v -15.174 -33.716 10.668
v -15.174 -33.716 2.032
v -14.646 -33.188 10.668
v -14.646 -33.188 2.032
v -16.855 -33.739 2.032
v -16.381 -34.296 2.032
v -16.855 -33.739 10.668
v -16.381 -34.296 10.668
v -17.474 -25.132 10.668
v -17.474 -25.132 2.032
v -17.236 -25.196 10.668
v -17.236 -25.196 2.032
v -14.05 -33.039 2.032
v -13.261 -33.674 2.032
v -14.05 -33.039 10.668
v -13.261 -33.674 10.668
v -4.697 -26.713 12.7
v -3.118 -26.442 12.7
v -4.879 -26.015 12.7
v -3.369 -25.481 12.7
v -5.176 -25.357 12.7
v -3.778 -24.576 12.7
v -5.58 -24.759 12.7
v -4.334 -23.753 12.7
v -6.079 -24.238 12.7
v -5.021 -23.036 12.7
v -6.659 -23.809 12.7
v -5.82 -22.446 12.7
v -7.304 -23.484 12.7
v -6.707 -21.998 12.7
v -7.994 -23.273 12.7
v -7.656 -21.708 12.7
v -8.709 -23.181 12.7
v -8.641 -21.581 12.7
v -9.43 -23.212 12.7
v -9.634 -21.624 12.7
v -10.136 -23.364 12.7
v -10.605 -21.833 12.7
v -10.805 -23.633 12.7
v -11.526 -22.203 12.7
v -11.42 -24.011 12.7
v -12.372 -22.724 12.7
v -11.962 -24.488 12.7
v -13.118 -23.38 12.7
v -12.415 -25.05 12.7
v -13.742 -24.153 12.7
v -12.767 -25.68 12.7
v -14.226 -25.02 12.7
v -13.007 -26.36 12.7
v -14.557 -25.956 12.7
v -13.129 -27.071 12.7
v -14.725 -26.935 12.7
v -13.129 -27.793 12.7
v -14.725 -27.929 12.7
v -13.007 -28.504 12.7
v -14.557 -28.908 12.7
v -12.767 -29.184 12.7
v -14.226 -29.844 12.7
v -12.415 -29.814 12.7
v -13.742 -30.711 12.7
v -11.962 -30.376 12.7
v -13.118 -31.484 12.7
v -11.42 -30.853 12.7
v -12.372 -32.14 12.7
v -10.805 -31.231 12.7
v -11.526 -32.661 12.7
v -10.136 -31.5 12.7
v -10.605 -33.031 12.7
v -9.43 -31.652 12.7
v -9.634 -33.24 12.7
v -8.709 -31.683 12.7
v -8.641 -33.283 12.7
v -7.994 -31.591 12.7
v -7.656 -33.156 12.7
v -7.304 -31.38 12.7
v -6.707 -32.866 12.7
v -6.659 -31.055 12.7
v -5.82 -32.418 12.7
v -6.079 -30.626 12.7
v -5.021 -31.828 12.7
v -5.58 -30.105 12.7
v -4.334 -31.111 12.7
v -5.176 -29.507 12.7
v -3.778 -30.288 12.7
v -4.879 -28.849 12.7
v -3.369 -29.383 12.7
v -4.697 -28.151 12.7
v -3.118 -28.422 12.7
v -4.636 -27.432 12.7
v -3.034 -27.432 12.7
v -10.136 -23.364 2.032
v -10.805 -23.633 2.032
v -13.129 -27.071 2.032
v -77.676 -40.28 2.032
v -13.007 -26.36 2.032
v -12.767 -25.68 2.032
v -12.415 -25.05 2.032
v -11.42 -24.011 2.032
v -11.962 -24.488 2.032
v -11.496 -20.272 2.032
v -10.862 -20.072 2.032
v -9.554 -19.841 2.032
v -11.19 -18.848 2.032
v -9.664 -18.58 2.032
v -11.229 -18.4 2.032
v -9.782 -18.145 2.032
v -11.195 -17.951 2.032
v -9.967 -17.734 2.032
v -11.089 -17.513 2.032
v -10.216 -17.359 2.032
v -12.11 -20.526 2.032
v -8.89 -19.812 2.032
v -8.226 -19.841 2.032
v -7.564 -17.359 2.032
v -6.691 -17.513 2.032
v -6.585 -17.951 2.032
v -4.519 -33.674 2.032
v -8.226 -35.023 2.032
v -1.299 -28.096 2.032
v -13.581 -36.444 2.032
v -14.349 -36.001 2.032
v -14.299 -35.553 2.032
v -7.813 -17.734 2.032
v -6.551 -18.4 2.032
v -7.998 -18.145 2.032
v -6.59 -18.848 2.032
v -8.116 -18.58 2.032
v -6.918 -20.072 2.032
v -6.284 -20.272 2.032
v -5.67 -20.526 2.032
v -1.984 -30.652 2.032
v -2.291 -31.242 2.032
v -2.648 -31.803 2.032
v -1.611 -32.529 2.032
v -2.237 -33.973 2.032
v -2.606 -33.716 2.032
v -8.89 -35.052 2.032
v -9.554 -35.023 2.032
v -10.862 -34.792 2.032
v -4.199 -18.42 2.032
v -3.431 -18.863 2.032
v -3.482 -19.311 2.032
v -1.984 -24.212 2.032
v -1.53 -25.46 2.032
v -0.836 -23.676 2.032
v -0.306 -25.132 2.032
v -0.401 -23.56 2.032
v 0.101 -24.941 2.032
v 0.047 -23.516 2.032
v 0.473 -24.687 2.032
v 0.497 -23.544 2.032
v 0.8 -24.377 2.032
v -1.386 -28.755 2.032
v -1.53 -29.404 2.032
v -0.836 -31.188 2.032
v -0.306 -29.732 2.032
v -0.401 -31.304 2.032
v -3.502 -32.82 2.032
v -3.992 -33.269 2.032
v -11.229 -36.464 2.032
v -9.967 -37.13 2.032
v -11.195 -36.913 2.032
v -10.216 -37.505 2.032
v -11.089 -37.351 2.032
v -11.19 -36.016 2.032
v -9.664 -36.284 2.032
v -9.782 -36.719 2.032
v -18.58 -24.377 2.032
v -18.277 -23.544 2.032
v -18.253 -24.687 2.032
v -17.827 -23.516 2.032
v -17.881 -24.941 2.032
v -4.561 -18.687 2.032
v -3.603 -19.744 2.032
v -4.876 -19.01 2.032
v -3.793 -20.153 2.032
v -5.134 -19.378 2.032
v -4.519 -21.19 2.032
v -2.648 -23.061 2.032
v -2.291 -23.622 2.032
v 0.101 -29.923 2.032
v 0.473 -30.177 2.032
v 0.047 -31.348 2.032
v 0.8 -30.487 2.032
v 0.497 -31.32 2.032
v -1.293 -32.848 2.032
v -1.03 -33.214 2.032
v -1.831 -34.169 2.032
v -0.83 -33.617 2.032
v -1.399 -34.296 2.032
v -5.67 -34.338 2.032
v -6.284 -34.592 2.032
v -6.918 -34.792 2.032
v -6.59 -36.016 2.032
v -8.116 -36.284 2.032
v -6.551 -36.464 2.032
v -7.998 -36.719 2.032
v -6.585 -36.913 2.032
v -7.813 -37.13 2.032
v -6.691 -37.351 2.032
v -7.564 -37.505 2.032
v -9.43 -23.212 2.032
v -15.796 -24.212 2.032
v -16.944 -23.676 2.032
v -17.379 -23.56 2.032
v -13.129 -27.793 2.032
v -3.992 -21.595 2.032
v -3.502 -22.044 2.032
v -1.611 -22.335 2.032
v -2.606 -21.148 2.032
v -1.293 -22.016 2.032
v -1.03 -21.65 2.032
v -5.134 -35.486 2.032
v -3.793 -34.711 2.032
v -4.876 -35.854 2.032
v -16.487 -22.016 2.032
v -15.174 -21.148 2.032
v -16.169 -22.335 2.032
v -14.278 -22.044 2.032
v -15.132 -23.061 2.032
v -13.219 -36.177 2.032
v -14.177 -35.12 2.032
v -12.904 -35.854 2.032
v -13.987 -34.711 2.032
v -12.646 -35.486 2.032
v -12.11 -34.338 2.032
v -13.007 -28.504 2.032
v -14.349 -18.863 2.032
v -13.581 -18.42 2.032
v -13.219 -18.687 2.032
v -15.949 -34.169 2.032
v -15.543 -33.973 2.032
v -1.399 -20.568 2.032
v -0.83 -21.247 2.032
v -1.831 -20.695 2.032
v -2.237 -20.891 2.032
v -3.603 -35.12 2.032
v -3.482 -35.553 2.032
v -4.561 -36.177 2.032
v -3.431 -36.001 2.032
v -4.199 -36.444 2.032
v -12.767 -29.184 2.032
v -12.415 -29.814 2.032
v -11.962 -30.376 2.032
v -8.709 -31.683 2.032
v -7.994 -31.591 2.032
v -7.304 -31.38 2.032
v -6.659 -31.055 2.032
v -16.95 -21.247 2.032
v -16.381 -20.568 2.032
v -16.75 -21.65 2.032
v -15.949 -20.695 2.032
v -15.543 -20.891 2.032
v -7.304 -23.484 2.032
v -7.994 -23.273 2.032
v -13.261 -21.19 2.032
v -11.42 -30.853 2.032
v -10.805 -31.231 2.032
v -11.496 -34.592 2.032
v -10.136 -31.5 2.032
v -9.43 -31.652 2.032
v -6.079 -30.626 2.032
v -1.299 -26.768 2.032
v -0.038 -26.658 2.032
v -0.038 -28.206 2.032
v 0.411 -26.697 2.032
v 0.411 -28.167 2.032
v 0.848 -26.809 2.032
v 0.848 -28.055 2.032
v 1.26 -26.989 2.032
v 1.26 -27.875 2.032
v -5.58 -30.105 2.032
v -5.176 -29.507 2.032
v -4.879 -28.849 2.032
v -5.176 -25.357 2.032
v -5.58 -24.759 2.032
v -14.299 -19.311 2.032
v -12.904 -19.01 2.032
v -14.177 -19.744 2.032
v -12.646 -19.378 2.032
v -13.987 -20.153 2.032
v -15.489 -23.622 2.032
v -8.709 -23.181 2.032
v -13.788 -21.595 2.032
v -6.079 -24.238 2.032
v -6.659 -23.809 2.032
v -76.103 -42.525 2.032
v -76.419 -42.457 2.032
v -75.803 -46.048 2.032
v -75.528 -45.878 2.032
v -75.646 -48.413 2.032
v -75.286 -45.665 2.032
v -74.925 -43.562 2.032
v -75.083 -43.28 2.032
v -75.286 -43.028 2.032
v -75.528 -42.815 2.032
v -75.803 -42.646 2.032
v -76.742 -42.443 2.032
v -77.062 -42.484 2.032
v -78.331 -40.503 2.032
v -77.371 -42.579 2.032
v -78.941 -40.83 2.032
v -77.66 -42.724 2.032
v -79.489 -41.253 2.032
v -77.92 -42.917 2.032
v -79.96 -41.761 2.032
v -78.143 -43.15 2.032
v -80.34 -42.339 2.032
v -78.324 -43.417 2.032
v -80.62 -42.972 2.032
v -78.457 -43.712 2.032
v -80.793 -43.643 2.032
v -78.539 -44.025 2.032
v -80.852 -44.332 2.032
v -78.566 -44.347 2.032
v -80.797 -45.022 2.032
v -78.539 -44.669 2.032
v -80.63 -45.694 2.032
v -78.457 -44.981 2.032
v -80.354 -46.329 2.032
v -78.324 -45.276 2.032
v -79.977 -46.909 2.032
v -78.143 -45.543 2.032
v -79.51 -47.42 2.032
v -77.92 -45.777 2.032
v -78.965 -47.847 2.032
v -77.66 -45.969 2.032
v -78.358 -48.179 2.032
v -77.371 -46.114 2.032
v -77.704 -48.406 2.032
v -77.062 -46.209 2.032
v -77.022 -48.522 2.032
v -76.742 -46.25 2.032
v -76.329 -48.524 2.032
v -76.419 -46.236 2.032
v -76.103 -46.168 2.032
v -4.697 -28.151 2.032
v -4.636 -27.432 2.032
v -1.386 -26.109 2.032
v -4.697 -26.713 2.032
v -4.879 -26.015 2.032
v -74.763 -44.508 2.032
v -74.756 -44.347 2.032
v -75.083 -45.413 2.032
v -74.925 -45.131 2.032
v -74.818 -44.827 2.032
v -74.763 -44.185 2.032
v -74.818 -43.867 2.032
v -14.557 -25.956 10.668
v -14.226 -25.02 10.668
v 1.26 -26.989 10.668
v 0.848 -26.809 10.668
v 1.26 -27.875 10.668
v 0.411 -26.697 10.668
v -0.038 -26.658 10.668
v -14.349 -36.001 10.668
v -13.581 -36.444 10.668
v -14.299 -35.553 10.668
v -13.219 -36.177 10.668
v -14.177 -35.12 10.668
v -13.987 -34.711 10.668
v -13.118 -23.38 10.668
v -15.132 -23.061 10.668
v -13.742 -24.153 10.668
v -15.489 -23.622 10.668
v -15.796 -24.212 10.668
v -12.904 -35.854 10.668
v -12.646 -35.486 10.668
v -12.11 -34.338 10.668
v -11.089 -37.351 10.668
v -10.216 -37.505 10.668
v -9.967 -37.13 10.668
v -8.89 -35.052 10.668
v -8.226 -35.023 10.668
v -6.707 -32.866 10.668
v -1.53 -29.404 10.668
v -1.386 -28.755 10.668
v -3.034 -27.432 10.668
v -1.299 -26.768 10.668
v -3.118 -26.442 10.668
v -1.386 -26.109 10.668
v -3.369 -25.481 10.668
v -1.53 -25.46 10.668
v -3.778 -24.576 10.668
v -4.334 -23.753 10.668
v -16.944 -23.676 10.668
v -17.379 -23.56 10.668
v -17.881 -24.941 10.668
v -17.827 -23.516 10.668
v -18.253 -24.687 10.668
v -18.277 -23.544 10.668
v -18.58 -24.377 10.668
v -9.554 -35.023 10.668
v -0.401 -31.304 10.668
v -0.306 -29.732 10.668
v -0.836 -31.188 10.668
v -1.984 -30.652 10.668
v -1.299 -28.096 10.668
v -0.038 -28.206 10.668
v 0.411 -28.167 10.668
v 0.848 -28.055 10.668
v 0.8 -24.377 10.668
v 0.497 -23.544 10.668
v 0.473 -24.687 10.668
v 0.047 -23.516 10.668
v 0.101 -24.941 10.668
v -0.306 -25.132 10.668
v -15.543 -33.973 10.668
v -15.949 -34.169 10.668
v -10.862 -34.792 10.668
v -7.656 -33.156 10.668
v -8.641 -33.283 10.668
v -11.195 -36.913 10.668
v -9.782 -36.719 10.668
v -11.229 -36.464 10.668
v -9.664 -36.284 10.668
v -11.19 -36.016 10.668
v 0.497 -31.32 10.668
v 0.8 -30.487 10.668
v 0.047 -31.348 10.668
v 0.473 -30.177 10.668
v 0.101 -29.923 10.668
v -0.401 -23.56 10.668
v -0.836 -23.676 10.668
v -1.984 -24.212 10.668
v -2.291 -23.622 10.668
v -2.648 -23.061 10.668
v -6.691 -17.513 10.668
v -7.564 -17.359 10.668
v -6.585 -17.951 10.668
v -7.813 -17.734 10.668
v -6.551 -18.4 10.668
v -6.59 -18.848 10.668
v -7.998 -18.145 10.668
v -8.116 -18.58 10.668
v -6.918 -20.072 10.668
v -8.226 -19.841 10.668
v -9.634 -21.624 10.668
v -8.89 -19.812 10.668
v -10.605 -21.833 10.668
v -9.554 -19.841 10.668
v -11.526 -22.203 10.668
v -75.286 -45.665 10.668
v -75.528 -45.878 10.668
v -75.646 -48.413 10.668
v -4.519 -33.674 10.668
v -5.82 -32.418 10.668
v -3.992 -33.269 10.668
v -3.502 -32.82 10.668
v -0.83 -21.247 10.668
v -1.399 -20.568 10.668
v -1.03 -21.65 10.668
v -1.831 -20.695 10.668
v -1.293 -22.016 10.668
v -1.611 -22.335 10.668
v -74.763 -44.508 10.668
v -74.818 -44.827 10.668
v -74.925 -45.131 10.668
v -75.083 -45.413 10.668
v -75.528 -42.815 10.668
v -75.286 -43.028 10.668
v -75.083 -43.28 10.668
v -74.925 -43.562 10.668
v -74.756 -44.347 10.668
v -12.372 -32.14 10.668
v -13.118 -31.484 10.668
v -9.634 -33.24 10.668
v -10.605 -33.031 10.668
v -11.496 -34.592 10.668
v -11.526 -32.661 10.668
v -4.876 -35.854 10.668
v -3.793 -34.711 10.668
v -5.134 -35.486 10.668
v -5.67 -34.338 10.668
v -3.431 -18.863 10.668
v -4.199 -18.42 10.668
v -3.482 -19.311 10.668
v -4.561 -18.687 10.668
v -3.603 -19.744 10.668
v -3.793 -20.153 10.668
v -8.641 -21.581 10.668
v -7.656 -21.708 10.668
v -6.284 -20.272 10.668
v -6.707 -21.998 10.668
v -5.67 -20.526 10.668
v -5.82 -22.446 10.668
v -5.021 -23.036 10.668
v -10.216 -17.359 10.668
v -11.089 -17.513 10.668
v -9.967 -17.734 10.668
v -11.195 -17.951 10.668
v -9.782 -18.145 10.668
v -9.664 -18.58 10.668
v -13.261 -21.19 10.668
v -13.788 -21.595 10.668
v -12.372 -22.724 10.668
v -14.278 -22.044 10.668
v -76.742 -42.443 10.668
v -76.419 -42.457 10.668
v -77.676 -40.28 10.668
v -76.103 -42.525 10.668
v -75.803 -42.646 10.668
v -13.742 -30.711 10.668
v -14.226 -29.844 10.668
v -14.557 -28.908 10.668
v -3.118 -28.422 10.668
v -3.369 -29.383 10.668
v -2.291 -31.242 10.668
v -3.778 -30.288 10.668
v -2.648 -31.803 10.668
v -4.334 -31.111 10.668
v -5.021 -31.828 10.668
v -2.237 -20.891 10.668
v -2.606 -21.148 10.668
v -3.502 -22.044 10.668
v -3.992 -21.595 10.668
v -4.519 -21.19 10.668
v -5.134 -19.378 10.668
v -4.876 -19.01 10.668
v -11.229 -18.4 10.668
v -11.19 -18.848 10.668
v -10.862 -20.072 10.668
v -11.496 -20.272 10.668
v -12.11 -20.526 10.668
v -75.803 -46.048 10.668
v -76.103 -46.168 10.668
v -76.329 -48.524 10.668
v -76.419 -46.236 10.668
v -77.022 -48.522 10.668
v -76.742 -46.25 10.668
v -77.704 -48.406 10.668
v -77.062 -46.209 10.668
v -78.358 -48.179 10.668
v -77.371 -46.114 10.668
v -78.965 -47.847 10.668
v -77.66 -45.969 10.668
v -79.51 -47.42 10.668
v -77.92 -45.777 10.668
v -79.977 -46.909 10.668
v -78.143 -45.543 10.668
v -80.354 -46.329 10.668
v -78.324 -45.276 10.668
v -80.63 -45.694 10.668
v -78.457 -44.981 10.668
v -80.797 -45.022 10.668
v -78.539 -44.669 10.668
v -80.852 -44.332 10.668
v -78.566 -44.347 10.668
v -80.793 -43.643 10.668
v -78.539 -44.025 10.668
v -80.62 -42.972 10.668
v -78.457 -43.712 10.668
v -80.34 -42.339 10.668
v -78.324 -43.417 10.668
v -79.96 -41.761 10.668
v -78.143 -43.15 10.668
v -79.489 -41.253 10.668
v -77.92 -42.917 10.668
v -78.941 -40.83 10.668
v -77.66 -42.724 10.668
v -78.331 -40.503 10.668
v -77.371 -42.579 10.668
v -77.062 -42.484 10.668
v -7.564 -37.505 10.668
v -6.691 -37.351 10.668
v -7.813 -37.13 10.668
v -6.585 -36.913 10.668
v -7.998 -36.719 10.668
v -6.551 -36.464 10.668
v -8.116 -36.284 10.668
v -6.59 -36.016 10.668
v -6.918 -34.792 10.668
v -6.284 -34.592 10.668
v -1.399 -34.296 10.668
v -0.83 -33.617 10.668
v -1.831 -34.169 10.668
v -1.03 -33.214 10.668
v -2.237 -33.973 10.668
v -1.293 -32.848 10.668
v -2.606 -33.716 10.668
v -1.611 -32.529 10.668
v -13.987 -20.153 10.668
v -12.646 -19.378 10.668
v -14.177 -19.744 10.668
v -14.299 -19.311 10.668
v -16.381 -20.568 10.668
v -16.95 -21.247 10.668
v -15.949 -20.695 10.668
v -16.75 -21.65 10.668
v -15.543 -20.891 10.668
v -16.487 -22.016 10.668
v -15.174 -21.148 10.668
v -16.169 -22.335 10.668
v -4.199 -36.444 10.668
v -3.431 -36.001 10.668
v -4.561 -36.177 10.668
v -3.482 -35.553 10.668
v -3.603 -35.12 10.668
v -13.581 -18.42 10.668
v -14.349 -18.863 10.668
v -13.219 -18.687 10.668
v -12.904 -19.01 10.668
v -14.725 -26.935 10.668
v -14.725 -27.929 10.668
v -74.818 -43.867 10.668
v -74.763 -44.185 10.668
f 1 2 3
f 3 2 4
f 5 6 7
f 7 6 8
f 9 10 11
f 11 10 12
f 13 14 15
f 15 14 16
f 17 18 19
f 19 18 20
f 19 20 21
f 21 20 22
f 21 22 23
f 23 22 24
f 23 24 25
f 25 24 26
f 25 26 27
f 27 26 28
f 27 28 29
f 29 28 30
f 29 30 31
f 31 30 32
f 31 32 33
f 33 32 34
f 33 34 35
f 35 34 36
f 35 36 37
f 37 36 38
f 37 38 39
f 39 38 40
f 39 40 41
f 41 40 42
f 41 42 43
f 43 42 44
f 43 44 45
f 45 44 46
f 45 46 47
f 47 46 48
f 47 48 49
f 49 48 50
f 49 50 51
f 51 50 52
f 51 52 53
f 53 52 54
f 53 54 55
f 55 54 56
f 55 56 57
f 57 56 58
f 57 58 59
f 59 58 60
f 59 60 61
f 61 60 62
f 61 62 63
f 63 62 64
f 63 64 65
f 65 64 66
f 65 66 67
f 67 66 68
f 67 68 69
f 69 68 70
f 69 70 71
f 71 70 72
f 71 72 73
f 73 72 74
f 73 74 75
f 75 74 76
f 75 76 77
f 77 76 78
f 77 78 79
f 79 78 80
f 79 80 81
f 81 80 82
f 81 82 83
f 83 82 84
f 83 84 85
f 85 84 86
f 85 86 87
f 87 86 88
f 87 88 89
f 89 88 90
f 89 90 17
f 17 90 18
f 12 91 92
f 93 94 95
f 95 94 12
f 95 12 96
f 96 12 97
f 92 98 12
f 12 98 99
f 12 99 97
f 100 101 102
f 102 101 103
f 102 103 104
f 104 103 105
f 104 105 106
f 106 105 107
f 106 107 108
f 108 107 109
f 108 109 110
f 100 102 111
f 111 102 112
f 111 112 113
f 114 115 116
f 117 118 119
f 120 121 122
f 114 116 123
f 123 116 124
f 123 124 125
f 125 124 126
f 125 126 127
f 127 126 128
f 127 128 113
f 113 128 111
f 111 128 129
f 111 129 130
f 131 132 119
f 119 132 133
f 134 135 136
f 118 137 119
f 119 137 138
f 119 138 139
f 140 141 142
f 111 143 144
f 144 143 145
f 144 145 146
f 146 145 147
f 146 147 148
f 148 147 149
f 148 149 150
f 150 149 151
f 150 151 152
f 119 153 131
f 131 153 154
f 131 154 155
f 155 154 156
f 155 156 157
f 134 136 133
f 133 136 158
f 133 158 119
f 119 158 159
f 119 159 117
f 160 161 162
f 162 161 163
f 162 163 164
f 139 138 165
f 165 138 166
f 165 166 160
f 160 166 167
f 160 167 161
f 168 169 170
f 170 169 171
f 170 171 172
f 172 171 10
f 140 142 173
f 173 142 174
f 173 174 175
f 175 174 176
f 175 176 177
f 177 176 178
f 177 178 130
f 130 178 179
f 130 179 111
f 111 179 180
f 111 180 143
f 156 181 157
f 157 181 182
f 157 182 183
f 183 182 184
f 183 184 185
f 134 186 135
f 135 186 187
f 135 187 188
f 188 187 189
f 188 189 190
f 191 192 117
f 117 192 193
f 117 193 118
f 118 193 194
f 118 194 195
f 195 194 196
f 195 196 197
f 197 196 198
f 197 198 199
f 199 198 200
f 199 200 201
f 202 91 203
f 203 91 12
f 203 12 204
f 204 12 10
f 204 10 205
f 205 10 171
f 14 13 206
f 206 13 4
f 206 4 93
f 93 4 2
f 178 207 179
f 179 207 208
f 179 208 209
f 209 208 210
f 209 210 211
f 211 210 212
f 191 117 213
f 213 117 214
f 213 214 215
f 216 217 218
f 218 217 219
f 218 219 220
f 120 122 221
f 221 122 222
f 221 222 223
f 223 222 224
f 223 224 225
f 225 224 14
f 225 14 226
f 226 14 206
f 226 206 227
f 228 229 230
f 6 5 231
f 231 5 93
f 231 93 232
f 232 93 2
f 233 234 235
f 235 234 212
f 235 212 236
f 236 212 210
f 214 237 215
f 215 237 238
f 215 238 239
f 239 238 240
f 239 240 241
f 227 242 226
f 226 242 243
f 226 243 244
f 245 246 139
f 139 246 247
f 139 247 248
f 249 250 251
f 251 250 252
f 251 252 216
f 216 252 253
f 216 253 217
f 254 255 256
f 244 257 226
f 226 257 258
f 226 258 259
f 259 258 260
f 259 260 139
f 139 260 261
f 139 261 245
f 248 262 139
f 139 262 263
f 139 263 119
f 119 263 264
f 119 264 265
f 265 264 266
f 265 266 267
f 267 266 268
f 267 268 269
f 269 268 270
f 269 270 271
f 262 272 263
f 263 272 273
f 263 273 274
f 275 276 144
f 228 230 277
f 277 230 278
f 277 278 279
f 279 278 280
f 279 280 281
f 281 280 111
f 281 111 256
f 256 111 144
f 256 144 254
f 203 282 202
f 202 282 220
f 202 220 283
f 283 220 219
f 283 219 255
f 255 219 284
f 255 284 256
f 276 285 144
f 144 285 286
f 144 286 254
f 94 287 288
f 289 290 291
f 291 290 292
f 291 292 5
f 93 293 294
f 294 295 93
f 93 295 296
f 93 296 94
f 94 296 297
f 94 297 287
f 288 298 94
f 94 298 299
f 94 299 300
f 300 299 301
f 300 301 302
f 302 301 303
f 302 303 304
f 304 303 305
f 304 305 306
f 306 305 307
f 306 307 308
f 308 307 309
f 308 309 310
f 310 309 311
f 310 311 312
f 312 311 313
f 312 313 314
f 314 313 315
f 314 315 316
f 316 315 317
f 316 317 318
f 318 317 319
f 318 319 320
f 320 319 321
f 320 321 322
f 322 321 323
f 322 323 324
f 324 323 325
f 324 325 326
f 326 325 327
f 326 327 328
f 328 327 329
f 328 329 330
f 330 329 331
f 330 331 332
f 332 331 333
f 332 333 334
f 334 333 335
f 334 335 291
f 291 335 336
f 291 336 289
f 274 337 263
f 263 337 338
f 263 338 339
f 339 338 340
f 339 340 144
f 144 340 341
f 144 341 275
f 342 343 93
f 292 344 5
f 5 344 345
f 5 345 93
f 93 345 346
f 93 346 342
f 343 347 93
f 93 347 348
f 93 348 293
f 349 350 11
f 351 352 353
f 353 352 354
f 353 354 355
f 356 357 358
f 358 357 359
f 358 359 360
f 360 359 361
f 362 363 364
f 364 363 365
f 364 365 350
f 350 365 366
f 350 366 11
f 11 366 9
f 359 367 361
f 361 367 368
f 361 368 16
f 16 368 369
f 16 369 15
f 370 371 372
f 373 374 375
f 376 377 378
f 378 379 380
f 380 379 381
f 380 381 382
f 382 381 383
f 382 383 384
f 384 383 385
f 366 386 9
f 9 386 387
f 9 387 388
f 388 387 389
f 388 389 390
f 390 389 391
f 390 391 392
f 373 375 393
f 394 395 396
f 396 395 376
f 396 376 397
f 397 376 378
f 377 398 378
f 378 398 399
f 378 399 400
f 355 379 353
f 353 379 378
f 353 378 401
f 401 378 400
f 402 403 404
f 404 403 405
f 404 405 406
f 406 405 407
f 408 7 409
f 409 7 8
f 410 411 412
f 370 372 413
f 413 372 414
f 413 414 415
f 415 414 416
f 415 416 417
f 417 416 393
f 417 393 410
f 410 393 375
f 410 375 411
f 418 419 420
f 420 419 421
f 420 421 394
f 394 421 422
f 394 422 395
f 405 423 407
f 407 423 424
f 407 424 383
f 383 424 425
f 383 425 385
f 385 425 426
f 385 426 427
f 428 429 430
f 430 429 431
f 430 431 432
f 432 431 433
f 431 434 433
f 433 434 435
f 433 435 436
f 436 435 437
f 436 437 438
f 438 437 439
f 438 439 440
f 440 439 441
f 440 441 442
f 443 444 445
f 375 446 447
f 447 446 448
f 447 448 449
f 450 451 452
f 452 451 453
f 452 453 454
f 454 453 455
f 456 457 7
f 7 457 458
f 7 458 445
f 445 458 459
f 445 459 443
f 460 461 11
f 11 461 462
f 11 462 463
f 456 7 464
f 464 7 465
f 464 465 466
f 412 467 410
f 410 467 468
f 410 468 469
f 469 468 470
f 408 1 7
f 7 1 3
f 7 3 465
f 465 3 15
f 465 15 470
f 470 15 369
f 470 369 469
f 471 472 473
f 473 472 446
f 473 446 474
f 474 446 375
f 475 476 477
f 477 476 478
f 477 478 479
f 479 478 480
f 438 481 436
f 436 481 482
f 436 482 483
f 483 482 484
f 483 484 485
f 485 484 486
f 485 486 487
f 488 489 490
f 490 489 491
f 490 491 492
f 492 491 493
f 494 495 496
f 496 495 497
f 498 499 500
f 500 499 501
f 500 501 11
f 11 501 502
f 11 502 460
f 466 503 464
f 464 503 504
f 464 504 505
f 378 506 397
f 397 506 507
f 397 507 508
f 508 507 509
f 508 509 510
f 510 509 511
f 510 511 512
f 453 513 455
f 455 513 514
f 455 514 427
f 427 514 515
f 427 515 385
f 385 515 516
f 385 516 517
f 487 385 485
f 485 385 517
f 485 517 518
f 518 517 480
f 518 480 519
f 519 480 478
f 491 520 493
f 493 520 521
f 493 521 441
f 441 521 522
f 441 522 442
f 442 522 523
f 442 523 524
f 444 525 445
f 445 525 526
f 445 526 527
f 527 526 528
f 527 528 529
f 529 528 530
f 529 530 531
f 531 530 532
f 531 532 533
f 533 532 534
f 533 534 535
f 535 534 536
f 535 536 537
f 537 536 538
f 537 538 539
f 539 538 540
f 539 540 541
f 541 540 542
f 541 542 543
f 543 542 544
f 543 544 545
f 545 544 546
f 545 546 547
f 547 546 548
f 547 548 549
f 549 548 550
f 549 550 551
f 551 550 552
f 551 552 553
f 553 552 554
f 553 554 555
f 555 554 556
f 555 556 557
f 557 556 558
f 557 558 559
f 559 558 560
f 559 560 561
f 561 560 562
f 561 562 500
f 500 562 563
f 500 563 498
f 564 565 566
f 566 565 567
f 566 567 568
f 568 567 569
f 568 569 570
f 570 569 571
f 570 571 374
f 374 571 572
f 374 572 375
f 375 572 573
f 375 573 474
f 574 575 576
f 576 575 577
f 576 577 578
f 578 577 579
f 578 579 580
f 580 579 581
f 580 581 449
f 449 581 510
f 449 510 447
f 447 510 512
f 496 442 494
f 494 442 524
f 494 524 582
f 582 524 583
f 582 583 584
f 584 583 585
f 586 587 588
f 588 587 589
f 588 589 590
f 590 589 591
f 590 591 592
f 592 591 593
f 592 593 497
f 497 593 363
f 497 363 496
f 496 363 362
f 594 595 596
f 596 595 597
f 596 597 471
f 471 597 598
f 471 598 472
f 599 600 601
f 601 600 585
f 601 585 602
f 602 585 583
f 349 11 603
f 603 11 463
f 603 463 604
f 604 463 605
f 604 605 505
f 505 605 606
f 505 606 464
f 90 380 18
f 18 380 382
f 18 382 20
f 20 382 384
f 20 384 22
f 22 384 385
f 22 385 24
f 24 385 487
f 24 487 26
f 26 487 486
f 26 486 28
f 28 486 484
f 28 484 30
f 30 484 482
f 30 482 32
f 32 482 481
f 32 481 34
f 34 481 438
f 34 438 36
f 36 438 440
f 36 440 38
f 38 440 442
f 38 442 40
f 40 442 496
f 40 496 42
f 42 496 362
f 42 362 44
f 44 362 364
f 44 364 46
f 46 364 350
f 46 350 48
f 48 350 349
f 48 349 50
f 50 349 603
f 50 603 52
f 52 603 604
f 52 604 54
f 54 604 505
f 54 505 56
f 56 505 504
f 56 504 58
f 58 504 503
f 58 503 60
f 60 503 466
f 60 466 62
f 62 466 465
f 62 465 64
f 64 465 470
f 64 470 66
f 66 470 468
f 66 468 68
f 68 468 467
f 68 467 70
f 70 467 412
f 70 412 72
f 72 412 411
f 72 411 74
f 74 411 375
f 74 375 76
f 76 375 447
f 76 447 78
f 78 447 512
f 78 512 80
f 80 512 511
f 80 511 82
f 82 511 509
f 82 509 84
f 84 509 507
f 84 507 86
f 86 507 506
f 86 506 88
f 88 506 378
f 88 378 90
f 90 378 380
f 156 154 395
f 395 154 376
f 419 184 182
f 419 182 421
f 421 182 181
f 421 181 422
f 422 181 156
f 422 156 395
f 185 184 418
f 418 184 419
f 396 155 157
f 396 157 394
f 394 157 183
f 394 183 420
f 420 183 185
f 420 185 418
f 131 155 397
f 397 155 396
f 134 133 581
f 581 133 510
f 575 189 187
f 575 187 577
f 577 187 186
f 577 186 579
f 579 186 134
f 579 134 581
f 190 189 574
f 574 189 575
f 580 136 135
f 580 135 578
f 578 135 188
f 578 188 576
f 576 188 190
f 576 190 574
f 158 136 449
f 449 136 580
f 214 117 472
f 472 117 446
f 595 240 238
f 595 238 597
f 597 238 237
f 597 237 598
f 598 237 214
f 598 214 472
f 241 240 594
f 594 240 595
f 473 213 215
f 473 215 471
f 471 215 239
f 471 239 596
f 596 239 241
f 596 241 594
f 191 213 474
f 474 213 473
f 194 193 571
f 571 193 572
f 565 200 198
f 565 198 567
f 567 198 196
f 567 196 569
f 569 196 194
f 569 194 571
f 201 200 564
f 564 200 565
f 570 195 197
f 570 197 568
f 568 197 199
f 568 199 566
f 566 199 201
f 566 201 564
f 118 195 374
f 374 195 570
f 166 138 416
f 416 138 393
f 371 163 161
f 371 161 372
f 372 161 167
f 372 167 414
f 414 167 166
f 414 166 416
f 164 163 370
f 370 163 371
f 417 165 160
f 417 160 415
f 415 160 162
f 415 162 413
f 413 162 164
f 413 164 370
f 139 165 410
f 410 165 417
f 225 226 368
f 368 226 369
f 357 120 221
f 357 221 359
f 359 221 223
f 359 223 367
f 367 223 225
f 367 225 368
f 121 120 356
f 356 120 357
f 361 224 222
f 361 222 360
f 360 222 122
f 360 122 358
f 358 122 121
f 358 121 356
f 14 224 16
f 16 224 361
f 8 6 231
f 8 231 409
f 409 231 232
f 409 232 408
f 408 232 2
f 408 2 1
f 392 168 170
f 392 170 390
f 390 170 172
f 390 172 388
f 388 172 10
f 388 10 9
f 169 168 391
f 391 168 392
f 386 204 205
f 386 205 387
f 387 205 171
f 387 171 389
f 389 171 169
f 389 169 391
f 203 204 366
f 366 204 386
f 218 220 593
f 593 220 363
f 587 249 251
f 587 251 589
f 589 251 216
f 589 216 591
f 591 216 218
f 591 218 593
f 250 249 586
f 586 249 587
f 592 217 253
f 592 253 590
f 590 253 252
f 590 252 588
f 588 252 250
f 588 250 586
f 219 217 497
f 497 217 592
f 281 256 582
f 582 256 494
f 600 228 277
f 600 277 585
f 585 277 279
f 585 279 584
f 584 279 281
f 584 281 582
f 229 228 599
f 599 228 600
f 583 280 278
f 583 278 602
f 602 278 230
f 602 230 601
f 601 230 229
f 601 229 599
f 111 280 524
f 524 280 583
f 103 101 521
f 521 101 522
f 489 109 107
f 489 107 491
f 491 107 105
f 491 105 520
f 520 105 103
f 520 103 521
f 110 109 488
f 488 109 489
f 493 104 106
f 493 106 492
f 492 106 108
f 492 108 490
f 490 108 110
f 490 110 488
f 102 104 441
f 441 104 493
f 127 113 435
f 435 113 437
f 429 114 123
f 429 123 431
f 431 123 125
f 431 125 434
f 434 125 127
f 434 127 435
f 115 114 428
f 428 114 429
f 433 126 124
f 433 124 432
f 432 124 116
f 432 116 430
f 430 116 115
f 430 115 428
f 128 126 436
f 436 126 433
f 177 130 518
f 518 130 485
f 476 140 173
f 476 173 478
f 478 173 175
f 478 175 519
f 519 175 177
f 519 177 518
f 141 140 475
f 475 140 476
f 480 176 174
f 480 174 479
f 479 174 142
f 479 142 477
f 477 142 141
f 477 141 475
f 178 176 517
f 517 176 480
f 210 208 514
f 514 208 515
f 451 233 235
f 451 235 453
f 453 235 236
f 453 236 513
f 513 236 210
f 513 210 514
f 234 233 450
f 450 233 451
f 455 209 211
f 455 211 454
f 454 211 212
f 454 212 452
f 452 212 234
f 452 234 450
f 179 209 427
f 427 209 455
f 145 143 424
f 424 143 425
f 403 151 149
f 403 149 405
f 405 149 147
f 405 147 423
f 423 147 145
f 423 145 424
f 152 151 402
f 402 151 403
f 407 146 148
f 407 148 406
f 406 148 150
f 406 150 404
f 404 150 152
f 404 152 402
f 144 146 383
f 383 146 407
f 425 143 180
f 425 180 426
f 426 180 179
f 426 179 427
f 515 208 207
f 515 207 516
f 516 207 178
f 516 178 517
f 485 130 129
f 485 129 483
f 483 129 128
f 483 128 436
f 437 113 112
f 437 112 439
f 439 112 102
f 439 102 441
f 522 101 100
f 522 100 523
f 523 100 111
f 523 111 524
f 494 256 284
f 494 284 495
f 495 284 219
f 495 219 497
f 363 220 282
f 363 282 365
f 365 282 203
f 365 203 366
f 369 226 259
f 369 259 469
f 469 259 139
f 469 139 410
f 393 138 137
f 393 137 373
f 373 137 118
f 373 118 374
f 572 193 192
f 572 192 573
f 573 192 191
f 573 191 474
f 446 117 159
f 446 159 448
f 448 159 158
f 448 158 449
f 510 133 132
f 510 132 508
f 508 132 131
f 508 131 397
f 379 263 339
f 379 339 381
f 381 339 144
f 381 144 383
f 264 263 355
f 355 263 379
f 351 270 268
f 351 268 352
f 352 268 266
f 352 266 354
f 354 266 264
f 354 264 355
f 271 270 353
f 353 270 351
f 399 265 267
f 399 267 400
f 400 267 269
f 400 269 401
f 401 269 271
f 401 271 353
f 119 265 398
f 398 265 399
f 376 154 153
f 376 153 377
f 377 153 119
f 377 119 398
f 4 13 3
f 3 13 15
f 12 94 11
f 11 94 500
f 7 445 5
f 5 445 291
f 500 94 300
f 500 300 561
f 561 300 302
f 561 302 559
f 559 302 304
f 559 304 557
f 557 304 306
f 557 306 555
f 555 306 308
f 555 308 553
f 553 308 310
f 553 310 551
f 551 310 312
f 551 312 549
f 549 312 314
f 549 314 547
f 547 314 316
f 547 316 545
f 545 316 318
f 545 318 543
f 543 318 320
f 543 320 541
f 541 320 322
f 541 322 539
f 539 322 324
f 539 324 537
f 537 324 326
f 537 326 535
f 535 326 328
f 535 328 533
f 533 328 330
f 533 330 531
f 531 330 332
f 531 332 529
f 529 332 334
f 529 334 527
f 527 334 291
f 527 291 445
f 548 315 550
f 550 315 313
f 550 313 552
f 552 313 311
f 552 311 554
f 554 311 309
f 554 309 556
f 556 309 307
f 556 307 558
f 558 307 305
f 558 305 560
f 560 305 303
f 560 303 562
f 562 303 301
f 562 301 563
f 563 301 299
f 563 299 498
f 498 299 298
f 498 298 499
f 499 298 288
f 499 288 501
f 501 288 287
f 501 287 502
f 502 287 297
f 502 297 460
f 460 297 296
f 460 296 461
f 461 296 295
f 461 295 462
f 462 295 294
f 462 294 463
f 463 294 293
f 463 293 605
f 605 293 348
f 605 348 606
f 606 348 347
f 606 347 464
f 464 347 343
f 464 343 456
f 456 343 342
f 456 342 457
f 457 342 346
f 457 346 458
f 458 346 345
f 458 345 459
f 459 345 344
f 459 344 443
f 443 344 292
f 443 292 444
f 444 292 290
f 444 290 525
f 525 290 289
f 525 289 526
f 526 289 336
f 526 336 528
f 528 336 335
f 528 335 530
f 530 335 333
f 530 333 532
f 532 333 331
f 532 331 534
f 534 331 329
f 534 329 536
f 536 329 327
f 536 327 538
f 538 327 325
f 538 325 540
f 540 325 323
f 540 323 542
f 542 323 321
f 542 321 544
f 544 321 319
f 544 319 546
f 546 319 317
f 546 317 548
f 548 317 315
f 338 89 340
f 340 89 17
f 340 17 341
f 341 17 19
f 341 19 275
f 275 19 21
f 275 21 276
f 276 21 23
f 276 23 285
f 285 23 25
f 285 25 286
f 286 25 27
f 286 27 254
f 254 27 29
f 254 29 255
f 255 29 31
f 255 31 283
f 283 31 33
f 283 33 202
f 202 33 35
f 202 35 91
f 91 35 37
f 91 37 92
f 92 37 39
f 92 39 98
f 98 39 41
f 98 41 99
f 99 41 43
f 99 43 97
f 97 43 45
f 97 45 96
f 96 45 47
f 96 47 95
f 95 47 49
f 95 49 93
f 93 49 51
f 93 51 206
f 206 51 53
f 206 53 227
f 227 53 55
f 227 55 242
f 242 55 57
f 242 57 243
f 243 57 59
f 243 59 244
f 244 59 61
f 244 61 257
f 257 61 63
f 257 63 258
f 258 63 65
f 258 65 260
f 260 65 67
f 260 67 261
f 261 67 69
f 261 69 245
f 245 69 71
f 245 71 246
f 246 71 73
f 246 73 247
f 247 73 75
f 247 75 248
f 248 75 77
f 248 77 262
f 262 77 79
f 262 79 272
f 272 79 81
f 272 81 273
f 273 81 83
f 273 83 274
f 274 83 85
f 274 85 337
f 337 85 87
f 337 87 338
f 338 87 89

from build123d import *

# Parameters (mm, degrees)
BOSS_EXTRUDE1_DEPTH = 12.7
CIRPATTERN1_COUNT   = 18
SKETCH3_W           = 2.032
SKETCH3_H           = 4.860083526
SKETCH5_R           = 1.905
BOSS_EXTRUDE3_DEPTH = 4.318
SKETCH6_R           = 5.855880208
CUT_EXTRUDE1_DEPTH  = 2.032
SKETCH7_R           = 4.2545
CUT_EXTRUDE2_DEPTH  = 95.903955419


with BuildPart() as part:
    # Sketch2 → Boss-Extrude1 (new body)
    with BuildSketch(Plane.XY):
        with BuildLine():
            Line((-4.887741292, -28.137706194), (-1.385764922, -28.755199114))
            ThreePointArc((-1.385764922, -28.755199114), (-1.335190156, -28.426609585), (-1.298996401, -28.09612676))
            Line((-1.298996401, -28.09612676), (-0.037512469, -28.206492303))
            ThreePointArc((-0.037512469, -28.206492303), (0.631557066, -28.119757595), (1.260329931, -27.875172976))
            ThreePointArc((1.260329931, -27.875172976), (1.27, -27.432), (1.260329931, -26.988827024))
            ThreePointArc((1.260329931, -26.988827024), (0.631557066, -26.744242405), (-0.037512469, -26.657507697))
            Line((-0.037512469, -26.657507697), (-1.298996401, -26.76787324))
            ThreePointArc((-1.298996401, -26.76787324), (-1.335190156, -26.437390415), (-1.385764922, -26.108800886))
            Line((-1.385764922, -26.108800886), (-4.887741292, -26.726293806))
            ThreePointArc((-4.887741292, -26.726293806), (-4.826, -27.432), (-4.887741292, -28.137706194))
        make_face()
    boss_extrude1 = extrude(amount=BOSS_EXTRUDE1_DEPTH)

    # CirPattern1: Boss-Extrude1 ×18 about axis
    cirpattern1_axis = Axis((-8.89, -27.432, 0), (0, 0, 1))
    for i in range(1, CIRPATTERN1_COUNT):
        add(boss_extrude1.rotate(cirpattern1_axis, i * 360 / CIRPATTERN1_COUNT))

    # Sketch3 → Cut-Revolve1 (revolve, cut)
    with BuildSketch(Plane(origin=(0, -27.432, 0), x_dir=(0, 0, -1), z_dir=(0, -1, 0))):
        with Locations((-11.684, -0.604078029)):
            Rectangle(SKETCH3_W, SKETCH3_H)
        with Locations((-1.016, -0.604078029)):
            Rectangle(SKETCH3_W, SKETCH3_H)
    revolve(axis=Axis((-8.89, -27.432, 12.7), (0, 0, -1)), mode=Mode.SUBTRACT)

    # Sketch5 → Boss-Extrude3 (add, symmetric)
    with BuildSketch(Plane.XY.offset(6.35)):
        with BuildLine():
            Line((-11.843249689, -32.488644073), (-75.646213327, -48.412823701))
            ThreePointArc((-75.646213327, -48.412823701), (-80.727352047, -45.361432), (-77.675960346, -40.280293281))
            Line((-77.675960346, -40.280293281), (-13.872996708, -24.356113653))
            ThreePointArc((-13.872996708, -24.356113653), (-14.571594361, -28.850033333), (-11.843249689, -32.488644073))
        make_face()
        with Locations((-76.661086837, -44.346558491)):
            Circle(SKETCH5_R, mode=Mode.SUBTRACT)
    extrude(amount=BOSS_EXTRUDE3_DEPTH, both=True)

    # Sketch6 → Cut-Extrude1 (cut)
    with BuildSketch(Plane(origin=(0, 0, 2.032), x_dir=(-1, 0, 0), z_dir=(0, 0, -1))):
        with Locations(Location((8.89, -27.432, 0), (0, 0, 180))):
            Circle(SKETCH6_R)
    extrude(amount=CUT_EXTRUDE1_DEPTH, mode=Mode.SUBTRACT)

    # Sketch7 → Cut-Extrude2 (cut, through all)
    with BuildSketch(Plane.XY.offset(12.7)):
        with Locations((-8.89, -27.432)):
            Circle(SKETCH7_R)
    extrude(amount=-CUT_EXTRUDE2_DEPTH, mode=Mode.SUBTRACT)


solid = part.part
